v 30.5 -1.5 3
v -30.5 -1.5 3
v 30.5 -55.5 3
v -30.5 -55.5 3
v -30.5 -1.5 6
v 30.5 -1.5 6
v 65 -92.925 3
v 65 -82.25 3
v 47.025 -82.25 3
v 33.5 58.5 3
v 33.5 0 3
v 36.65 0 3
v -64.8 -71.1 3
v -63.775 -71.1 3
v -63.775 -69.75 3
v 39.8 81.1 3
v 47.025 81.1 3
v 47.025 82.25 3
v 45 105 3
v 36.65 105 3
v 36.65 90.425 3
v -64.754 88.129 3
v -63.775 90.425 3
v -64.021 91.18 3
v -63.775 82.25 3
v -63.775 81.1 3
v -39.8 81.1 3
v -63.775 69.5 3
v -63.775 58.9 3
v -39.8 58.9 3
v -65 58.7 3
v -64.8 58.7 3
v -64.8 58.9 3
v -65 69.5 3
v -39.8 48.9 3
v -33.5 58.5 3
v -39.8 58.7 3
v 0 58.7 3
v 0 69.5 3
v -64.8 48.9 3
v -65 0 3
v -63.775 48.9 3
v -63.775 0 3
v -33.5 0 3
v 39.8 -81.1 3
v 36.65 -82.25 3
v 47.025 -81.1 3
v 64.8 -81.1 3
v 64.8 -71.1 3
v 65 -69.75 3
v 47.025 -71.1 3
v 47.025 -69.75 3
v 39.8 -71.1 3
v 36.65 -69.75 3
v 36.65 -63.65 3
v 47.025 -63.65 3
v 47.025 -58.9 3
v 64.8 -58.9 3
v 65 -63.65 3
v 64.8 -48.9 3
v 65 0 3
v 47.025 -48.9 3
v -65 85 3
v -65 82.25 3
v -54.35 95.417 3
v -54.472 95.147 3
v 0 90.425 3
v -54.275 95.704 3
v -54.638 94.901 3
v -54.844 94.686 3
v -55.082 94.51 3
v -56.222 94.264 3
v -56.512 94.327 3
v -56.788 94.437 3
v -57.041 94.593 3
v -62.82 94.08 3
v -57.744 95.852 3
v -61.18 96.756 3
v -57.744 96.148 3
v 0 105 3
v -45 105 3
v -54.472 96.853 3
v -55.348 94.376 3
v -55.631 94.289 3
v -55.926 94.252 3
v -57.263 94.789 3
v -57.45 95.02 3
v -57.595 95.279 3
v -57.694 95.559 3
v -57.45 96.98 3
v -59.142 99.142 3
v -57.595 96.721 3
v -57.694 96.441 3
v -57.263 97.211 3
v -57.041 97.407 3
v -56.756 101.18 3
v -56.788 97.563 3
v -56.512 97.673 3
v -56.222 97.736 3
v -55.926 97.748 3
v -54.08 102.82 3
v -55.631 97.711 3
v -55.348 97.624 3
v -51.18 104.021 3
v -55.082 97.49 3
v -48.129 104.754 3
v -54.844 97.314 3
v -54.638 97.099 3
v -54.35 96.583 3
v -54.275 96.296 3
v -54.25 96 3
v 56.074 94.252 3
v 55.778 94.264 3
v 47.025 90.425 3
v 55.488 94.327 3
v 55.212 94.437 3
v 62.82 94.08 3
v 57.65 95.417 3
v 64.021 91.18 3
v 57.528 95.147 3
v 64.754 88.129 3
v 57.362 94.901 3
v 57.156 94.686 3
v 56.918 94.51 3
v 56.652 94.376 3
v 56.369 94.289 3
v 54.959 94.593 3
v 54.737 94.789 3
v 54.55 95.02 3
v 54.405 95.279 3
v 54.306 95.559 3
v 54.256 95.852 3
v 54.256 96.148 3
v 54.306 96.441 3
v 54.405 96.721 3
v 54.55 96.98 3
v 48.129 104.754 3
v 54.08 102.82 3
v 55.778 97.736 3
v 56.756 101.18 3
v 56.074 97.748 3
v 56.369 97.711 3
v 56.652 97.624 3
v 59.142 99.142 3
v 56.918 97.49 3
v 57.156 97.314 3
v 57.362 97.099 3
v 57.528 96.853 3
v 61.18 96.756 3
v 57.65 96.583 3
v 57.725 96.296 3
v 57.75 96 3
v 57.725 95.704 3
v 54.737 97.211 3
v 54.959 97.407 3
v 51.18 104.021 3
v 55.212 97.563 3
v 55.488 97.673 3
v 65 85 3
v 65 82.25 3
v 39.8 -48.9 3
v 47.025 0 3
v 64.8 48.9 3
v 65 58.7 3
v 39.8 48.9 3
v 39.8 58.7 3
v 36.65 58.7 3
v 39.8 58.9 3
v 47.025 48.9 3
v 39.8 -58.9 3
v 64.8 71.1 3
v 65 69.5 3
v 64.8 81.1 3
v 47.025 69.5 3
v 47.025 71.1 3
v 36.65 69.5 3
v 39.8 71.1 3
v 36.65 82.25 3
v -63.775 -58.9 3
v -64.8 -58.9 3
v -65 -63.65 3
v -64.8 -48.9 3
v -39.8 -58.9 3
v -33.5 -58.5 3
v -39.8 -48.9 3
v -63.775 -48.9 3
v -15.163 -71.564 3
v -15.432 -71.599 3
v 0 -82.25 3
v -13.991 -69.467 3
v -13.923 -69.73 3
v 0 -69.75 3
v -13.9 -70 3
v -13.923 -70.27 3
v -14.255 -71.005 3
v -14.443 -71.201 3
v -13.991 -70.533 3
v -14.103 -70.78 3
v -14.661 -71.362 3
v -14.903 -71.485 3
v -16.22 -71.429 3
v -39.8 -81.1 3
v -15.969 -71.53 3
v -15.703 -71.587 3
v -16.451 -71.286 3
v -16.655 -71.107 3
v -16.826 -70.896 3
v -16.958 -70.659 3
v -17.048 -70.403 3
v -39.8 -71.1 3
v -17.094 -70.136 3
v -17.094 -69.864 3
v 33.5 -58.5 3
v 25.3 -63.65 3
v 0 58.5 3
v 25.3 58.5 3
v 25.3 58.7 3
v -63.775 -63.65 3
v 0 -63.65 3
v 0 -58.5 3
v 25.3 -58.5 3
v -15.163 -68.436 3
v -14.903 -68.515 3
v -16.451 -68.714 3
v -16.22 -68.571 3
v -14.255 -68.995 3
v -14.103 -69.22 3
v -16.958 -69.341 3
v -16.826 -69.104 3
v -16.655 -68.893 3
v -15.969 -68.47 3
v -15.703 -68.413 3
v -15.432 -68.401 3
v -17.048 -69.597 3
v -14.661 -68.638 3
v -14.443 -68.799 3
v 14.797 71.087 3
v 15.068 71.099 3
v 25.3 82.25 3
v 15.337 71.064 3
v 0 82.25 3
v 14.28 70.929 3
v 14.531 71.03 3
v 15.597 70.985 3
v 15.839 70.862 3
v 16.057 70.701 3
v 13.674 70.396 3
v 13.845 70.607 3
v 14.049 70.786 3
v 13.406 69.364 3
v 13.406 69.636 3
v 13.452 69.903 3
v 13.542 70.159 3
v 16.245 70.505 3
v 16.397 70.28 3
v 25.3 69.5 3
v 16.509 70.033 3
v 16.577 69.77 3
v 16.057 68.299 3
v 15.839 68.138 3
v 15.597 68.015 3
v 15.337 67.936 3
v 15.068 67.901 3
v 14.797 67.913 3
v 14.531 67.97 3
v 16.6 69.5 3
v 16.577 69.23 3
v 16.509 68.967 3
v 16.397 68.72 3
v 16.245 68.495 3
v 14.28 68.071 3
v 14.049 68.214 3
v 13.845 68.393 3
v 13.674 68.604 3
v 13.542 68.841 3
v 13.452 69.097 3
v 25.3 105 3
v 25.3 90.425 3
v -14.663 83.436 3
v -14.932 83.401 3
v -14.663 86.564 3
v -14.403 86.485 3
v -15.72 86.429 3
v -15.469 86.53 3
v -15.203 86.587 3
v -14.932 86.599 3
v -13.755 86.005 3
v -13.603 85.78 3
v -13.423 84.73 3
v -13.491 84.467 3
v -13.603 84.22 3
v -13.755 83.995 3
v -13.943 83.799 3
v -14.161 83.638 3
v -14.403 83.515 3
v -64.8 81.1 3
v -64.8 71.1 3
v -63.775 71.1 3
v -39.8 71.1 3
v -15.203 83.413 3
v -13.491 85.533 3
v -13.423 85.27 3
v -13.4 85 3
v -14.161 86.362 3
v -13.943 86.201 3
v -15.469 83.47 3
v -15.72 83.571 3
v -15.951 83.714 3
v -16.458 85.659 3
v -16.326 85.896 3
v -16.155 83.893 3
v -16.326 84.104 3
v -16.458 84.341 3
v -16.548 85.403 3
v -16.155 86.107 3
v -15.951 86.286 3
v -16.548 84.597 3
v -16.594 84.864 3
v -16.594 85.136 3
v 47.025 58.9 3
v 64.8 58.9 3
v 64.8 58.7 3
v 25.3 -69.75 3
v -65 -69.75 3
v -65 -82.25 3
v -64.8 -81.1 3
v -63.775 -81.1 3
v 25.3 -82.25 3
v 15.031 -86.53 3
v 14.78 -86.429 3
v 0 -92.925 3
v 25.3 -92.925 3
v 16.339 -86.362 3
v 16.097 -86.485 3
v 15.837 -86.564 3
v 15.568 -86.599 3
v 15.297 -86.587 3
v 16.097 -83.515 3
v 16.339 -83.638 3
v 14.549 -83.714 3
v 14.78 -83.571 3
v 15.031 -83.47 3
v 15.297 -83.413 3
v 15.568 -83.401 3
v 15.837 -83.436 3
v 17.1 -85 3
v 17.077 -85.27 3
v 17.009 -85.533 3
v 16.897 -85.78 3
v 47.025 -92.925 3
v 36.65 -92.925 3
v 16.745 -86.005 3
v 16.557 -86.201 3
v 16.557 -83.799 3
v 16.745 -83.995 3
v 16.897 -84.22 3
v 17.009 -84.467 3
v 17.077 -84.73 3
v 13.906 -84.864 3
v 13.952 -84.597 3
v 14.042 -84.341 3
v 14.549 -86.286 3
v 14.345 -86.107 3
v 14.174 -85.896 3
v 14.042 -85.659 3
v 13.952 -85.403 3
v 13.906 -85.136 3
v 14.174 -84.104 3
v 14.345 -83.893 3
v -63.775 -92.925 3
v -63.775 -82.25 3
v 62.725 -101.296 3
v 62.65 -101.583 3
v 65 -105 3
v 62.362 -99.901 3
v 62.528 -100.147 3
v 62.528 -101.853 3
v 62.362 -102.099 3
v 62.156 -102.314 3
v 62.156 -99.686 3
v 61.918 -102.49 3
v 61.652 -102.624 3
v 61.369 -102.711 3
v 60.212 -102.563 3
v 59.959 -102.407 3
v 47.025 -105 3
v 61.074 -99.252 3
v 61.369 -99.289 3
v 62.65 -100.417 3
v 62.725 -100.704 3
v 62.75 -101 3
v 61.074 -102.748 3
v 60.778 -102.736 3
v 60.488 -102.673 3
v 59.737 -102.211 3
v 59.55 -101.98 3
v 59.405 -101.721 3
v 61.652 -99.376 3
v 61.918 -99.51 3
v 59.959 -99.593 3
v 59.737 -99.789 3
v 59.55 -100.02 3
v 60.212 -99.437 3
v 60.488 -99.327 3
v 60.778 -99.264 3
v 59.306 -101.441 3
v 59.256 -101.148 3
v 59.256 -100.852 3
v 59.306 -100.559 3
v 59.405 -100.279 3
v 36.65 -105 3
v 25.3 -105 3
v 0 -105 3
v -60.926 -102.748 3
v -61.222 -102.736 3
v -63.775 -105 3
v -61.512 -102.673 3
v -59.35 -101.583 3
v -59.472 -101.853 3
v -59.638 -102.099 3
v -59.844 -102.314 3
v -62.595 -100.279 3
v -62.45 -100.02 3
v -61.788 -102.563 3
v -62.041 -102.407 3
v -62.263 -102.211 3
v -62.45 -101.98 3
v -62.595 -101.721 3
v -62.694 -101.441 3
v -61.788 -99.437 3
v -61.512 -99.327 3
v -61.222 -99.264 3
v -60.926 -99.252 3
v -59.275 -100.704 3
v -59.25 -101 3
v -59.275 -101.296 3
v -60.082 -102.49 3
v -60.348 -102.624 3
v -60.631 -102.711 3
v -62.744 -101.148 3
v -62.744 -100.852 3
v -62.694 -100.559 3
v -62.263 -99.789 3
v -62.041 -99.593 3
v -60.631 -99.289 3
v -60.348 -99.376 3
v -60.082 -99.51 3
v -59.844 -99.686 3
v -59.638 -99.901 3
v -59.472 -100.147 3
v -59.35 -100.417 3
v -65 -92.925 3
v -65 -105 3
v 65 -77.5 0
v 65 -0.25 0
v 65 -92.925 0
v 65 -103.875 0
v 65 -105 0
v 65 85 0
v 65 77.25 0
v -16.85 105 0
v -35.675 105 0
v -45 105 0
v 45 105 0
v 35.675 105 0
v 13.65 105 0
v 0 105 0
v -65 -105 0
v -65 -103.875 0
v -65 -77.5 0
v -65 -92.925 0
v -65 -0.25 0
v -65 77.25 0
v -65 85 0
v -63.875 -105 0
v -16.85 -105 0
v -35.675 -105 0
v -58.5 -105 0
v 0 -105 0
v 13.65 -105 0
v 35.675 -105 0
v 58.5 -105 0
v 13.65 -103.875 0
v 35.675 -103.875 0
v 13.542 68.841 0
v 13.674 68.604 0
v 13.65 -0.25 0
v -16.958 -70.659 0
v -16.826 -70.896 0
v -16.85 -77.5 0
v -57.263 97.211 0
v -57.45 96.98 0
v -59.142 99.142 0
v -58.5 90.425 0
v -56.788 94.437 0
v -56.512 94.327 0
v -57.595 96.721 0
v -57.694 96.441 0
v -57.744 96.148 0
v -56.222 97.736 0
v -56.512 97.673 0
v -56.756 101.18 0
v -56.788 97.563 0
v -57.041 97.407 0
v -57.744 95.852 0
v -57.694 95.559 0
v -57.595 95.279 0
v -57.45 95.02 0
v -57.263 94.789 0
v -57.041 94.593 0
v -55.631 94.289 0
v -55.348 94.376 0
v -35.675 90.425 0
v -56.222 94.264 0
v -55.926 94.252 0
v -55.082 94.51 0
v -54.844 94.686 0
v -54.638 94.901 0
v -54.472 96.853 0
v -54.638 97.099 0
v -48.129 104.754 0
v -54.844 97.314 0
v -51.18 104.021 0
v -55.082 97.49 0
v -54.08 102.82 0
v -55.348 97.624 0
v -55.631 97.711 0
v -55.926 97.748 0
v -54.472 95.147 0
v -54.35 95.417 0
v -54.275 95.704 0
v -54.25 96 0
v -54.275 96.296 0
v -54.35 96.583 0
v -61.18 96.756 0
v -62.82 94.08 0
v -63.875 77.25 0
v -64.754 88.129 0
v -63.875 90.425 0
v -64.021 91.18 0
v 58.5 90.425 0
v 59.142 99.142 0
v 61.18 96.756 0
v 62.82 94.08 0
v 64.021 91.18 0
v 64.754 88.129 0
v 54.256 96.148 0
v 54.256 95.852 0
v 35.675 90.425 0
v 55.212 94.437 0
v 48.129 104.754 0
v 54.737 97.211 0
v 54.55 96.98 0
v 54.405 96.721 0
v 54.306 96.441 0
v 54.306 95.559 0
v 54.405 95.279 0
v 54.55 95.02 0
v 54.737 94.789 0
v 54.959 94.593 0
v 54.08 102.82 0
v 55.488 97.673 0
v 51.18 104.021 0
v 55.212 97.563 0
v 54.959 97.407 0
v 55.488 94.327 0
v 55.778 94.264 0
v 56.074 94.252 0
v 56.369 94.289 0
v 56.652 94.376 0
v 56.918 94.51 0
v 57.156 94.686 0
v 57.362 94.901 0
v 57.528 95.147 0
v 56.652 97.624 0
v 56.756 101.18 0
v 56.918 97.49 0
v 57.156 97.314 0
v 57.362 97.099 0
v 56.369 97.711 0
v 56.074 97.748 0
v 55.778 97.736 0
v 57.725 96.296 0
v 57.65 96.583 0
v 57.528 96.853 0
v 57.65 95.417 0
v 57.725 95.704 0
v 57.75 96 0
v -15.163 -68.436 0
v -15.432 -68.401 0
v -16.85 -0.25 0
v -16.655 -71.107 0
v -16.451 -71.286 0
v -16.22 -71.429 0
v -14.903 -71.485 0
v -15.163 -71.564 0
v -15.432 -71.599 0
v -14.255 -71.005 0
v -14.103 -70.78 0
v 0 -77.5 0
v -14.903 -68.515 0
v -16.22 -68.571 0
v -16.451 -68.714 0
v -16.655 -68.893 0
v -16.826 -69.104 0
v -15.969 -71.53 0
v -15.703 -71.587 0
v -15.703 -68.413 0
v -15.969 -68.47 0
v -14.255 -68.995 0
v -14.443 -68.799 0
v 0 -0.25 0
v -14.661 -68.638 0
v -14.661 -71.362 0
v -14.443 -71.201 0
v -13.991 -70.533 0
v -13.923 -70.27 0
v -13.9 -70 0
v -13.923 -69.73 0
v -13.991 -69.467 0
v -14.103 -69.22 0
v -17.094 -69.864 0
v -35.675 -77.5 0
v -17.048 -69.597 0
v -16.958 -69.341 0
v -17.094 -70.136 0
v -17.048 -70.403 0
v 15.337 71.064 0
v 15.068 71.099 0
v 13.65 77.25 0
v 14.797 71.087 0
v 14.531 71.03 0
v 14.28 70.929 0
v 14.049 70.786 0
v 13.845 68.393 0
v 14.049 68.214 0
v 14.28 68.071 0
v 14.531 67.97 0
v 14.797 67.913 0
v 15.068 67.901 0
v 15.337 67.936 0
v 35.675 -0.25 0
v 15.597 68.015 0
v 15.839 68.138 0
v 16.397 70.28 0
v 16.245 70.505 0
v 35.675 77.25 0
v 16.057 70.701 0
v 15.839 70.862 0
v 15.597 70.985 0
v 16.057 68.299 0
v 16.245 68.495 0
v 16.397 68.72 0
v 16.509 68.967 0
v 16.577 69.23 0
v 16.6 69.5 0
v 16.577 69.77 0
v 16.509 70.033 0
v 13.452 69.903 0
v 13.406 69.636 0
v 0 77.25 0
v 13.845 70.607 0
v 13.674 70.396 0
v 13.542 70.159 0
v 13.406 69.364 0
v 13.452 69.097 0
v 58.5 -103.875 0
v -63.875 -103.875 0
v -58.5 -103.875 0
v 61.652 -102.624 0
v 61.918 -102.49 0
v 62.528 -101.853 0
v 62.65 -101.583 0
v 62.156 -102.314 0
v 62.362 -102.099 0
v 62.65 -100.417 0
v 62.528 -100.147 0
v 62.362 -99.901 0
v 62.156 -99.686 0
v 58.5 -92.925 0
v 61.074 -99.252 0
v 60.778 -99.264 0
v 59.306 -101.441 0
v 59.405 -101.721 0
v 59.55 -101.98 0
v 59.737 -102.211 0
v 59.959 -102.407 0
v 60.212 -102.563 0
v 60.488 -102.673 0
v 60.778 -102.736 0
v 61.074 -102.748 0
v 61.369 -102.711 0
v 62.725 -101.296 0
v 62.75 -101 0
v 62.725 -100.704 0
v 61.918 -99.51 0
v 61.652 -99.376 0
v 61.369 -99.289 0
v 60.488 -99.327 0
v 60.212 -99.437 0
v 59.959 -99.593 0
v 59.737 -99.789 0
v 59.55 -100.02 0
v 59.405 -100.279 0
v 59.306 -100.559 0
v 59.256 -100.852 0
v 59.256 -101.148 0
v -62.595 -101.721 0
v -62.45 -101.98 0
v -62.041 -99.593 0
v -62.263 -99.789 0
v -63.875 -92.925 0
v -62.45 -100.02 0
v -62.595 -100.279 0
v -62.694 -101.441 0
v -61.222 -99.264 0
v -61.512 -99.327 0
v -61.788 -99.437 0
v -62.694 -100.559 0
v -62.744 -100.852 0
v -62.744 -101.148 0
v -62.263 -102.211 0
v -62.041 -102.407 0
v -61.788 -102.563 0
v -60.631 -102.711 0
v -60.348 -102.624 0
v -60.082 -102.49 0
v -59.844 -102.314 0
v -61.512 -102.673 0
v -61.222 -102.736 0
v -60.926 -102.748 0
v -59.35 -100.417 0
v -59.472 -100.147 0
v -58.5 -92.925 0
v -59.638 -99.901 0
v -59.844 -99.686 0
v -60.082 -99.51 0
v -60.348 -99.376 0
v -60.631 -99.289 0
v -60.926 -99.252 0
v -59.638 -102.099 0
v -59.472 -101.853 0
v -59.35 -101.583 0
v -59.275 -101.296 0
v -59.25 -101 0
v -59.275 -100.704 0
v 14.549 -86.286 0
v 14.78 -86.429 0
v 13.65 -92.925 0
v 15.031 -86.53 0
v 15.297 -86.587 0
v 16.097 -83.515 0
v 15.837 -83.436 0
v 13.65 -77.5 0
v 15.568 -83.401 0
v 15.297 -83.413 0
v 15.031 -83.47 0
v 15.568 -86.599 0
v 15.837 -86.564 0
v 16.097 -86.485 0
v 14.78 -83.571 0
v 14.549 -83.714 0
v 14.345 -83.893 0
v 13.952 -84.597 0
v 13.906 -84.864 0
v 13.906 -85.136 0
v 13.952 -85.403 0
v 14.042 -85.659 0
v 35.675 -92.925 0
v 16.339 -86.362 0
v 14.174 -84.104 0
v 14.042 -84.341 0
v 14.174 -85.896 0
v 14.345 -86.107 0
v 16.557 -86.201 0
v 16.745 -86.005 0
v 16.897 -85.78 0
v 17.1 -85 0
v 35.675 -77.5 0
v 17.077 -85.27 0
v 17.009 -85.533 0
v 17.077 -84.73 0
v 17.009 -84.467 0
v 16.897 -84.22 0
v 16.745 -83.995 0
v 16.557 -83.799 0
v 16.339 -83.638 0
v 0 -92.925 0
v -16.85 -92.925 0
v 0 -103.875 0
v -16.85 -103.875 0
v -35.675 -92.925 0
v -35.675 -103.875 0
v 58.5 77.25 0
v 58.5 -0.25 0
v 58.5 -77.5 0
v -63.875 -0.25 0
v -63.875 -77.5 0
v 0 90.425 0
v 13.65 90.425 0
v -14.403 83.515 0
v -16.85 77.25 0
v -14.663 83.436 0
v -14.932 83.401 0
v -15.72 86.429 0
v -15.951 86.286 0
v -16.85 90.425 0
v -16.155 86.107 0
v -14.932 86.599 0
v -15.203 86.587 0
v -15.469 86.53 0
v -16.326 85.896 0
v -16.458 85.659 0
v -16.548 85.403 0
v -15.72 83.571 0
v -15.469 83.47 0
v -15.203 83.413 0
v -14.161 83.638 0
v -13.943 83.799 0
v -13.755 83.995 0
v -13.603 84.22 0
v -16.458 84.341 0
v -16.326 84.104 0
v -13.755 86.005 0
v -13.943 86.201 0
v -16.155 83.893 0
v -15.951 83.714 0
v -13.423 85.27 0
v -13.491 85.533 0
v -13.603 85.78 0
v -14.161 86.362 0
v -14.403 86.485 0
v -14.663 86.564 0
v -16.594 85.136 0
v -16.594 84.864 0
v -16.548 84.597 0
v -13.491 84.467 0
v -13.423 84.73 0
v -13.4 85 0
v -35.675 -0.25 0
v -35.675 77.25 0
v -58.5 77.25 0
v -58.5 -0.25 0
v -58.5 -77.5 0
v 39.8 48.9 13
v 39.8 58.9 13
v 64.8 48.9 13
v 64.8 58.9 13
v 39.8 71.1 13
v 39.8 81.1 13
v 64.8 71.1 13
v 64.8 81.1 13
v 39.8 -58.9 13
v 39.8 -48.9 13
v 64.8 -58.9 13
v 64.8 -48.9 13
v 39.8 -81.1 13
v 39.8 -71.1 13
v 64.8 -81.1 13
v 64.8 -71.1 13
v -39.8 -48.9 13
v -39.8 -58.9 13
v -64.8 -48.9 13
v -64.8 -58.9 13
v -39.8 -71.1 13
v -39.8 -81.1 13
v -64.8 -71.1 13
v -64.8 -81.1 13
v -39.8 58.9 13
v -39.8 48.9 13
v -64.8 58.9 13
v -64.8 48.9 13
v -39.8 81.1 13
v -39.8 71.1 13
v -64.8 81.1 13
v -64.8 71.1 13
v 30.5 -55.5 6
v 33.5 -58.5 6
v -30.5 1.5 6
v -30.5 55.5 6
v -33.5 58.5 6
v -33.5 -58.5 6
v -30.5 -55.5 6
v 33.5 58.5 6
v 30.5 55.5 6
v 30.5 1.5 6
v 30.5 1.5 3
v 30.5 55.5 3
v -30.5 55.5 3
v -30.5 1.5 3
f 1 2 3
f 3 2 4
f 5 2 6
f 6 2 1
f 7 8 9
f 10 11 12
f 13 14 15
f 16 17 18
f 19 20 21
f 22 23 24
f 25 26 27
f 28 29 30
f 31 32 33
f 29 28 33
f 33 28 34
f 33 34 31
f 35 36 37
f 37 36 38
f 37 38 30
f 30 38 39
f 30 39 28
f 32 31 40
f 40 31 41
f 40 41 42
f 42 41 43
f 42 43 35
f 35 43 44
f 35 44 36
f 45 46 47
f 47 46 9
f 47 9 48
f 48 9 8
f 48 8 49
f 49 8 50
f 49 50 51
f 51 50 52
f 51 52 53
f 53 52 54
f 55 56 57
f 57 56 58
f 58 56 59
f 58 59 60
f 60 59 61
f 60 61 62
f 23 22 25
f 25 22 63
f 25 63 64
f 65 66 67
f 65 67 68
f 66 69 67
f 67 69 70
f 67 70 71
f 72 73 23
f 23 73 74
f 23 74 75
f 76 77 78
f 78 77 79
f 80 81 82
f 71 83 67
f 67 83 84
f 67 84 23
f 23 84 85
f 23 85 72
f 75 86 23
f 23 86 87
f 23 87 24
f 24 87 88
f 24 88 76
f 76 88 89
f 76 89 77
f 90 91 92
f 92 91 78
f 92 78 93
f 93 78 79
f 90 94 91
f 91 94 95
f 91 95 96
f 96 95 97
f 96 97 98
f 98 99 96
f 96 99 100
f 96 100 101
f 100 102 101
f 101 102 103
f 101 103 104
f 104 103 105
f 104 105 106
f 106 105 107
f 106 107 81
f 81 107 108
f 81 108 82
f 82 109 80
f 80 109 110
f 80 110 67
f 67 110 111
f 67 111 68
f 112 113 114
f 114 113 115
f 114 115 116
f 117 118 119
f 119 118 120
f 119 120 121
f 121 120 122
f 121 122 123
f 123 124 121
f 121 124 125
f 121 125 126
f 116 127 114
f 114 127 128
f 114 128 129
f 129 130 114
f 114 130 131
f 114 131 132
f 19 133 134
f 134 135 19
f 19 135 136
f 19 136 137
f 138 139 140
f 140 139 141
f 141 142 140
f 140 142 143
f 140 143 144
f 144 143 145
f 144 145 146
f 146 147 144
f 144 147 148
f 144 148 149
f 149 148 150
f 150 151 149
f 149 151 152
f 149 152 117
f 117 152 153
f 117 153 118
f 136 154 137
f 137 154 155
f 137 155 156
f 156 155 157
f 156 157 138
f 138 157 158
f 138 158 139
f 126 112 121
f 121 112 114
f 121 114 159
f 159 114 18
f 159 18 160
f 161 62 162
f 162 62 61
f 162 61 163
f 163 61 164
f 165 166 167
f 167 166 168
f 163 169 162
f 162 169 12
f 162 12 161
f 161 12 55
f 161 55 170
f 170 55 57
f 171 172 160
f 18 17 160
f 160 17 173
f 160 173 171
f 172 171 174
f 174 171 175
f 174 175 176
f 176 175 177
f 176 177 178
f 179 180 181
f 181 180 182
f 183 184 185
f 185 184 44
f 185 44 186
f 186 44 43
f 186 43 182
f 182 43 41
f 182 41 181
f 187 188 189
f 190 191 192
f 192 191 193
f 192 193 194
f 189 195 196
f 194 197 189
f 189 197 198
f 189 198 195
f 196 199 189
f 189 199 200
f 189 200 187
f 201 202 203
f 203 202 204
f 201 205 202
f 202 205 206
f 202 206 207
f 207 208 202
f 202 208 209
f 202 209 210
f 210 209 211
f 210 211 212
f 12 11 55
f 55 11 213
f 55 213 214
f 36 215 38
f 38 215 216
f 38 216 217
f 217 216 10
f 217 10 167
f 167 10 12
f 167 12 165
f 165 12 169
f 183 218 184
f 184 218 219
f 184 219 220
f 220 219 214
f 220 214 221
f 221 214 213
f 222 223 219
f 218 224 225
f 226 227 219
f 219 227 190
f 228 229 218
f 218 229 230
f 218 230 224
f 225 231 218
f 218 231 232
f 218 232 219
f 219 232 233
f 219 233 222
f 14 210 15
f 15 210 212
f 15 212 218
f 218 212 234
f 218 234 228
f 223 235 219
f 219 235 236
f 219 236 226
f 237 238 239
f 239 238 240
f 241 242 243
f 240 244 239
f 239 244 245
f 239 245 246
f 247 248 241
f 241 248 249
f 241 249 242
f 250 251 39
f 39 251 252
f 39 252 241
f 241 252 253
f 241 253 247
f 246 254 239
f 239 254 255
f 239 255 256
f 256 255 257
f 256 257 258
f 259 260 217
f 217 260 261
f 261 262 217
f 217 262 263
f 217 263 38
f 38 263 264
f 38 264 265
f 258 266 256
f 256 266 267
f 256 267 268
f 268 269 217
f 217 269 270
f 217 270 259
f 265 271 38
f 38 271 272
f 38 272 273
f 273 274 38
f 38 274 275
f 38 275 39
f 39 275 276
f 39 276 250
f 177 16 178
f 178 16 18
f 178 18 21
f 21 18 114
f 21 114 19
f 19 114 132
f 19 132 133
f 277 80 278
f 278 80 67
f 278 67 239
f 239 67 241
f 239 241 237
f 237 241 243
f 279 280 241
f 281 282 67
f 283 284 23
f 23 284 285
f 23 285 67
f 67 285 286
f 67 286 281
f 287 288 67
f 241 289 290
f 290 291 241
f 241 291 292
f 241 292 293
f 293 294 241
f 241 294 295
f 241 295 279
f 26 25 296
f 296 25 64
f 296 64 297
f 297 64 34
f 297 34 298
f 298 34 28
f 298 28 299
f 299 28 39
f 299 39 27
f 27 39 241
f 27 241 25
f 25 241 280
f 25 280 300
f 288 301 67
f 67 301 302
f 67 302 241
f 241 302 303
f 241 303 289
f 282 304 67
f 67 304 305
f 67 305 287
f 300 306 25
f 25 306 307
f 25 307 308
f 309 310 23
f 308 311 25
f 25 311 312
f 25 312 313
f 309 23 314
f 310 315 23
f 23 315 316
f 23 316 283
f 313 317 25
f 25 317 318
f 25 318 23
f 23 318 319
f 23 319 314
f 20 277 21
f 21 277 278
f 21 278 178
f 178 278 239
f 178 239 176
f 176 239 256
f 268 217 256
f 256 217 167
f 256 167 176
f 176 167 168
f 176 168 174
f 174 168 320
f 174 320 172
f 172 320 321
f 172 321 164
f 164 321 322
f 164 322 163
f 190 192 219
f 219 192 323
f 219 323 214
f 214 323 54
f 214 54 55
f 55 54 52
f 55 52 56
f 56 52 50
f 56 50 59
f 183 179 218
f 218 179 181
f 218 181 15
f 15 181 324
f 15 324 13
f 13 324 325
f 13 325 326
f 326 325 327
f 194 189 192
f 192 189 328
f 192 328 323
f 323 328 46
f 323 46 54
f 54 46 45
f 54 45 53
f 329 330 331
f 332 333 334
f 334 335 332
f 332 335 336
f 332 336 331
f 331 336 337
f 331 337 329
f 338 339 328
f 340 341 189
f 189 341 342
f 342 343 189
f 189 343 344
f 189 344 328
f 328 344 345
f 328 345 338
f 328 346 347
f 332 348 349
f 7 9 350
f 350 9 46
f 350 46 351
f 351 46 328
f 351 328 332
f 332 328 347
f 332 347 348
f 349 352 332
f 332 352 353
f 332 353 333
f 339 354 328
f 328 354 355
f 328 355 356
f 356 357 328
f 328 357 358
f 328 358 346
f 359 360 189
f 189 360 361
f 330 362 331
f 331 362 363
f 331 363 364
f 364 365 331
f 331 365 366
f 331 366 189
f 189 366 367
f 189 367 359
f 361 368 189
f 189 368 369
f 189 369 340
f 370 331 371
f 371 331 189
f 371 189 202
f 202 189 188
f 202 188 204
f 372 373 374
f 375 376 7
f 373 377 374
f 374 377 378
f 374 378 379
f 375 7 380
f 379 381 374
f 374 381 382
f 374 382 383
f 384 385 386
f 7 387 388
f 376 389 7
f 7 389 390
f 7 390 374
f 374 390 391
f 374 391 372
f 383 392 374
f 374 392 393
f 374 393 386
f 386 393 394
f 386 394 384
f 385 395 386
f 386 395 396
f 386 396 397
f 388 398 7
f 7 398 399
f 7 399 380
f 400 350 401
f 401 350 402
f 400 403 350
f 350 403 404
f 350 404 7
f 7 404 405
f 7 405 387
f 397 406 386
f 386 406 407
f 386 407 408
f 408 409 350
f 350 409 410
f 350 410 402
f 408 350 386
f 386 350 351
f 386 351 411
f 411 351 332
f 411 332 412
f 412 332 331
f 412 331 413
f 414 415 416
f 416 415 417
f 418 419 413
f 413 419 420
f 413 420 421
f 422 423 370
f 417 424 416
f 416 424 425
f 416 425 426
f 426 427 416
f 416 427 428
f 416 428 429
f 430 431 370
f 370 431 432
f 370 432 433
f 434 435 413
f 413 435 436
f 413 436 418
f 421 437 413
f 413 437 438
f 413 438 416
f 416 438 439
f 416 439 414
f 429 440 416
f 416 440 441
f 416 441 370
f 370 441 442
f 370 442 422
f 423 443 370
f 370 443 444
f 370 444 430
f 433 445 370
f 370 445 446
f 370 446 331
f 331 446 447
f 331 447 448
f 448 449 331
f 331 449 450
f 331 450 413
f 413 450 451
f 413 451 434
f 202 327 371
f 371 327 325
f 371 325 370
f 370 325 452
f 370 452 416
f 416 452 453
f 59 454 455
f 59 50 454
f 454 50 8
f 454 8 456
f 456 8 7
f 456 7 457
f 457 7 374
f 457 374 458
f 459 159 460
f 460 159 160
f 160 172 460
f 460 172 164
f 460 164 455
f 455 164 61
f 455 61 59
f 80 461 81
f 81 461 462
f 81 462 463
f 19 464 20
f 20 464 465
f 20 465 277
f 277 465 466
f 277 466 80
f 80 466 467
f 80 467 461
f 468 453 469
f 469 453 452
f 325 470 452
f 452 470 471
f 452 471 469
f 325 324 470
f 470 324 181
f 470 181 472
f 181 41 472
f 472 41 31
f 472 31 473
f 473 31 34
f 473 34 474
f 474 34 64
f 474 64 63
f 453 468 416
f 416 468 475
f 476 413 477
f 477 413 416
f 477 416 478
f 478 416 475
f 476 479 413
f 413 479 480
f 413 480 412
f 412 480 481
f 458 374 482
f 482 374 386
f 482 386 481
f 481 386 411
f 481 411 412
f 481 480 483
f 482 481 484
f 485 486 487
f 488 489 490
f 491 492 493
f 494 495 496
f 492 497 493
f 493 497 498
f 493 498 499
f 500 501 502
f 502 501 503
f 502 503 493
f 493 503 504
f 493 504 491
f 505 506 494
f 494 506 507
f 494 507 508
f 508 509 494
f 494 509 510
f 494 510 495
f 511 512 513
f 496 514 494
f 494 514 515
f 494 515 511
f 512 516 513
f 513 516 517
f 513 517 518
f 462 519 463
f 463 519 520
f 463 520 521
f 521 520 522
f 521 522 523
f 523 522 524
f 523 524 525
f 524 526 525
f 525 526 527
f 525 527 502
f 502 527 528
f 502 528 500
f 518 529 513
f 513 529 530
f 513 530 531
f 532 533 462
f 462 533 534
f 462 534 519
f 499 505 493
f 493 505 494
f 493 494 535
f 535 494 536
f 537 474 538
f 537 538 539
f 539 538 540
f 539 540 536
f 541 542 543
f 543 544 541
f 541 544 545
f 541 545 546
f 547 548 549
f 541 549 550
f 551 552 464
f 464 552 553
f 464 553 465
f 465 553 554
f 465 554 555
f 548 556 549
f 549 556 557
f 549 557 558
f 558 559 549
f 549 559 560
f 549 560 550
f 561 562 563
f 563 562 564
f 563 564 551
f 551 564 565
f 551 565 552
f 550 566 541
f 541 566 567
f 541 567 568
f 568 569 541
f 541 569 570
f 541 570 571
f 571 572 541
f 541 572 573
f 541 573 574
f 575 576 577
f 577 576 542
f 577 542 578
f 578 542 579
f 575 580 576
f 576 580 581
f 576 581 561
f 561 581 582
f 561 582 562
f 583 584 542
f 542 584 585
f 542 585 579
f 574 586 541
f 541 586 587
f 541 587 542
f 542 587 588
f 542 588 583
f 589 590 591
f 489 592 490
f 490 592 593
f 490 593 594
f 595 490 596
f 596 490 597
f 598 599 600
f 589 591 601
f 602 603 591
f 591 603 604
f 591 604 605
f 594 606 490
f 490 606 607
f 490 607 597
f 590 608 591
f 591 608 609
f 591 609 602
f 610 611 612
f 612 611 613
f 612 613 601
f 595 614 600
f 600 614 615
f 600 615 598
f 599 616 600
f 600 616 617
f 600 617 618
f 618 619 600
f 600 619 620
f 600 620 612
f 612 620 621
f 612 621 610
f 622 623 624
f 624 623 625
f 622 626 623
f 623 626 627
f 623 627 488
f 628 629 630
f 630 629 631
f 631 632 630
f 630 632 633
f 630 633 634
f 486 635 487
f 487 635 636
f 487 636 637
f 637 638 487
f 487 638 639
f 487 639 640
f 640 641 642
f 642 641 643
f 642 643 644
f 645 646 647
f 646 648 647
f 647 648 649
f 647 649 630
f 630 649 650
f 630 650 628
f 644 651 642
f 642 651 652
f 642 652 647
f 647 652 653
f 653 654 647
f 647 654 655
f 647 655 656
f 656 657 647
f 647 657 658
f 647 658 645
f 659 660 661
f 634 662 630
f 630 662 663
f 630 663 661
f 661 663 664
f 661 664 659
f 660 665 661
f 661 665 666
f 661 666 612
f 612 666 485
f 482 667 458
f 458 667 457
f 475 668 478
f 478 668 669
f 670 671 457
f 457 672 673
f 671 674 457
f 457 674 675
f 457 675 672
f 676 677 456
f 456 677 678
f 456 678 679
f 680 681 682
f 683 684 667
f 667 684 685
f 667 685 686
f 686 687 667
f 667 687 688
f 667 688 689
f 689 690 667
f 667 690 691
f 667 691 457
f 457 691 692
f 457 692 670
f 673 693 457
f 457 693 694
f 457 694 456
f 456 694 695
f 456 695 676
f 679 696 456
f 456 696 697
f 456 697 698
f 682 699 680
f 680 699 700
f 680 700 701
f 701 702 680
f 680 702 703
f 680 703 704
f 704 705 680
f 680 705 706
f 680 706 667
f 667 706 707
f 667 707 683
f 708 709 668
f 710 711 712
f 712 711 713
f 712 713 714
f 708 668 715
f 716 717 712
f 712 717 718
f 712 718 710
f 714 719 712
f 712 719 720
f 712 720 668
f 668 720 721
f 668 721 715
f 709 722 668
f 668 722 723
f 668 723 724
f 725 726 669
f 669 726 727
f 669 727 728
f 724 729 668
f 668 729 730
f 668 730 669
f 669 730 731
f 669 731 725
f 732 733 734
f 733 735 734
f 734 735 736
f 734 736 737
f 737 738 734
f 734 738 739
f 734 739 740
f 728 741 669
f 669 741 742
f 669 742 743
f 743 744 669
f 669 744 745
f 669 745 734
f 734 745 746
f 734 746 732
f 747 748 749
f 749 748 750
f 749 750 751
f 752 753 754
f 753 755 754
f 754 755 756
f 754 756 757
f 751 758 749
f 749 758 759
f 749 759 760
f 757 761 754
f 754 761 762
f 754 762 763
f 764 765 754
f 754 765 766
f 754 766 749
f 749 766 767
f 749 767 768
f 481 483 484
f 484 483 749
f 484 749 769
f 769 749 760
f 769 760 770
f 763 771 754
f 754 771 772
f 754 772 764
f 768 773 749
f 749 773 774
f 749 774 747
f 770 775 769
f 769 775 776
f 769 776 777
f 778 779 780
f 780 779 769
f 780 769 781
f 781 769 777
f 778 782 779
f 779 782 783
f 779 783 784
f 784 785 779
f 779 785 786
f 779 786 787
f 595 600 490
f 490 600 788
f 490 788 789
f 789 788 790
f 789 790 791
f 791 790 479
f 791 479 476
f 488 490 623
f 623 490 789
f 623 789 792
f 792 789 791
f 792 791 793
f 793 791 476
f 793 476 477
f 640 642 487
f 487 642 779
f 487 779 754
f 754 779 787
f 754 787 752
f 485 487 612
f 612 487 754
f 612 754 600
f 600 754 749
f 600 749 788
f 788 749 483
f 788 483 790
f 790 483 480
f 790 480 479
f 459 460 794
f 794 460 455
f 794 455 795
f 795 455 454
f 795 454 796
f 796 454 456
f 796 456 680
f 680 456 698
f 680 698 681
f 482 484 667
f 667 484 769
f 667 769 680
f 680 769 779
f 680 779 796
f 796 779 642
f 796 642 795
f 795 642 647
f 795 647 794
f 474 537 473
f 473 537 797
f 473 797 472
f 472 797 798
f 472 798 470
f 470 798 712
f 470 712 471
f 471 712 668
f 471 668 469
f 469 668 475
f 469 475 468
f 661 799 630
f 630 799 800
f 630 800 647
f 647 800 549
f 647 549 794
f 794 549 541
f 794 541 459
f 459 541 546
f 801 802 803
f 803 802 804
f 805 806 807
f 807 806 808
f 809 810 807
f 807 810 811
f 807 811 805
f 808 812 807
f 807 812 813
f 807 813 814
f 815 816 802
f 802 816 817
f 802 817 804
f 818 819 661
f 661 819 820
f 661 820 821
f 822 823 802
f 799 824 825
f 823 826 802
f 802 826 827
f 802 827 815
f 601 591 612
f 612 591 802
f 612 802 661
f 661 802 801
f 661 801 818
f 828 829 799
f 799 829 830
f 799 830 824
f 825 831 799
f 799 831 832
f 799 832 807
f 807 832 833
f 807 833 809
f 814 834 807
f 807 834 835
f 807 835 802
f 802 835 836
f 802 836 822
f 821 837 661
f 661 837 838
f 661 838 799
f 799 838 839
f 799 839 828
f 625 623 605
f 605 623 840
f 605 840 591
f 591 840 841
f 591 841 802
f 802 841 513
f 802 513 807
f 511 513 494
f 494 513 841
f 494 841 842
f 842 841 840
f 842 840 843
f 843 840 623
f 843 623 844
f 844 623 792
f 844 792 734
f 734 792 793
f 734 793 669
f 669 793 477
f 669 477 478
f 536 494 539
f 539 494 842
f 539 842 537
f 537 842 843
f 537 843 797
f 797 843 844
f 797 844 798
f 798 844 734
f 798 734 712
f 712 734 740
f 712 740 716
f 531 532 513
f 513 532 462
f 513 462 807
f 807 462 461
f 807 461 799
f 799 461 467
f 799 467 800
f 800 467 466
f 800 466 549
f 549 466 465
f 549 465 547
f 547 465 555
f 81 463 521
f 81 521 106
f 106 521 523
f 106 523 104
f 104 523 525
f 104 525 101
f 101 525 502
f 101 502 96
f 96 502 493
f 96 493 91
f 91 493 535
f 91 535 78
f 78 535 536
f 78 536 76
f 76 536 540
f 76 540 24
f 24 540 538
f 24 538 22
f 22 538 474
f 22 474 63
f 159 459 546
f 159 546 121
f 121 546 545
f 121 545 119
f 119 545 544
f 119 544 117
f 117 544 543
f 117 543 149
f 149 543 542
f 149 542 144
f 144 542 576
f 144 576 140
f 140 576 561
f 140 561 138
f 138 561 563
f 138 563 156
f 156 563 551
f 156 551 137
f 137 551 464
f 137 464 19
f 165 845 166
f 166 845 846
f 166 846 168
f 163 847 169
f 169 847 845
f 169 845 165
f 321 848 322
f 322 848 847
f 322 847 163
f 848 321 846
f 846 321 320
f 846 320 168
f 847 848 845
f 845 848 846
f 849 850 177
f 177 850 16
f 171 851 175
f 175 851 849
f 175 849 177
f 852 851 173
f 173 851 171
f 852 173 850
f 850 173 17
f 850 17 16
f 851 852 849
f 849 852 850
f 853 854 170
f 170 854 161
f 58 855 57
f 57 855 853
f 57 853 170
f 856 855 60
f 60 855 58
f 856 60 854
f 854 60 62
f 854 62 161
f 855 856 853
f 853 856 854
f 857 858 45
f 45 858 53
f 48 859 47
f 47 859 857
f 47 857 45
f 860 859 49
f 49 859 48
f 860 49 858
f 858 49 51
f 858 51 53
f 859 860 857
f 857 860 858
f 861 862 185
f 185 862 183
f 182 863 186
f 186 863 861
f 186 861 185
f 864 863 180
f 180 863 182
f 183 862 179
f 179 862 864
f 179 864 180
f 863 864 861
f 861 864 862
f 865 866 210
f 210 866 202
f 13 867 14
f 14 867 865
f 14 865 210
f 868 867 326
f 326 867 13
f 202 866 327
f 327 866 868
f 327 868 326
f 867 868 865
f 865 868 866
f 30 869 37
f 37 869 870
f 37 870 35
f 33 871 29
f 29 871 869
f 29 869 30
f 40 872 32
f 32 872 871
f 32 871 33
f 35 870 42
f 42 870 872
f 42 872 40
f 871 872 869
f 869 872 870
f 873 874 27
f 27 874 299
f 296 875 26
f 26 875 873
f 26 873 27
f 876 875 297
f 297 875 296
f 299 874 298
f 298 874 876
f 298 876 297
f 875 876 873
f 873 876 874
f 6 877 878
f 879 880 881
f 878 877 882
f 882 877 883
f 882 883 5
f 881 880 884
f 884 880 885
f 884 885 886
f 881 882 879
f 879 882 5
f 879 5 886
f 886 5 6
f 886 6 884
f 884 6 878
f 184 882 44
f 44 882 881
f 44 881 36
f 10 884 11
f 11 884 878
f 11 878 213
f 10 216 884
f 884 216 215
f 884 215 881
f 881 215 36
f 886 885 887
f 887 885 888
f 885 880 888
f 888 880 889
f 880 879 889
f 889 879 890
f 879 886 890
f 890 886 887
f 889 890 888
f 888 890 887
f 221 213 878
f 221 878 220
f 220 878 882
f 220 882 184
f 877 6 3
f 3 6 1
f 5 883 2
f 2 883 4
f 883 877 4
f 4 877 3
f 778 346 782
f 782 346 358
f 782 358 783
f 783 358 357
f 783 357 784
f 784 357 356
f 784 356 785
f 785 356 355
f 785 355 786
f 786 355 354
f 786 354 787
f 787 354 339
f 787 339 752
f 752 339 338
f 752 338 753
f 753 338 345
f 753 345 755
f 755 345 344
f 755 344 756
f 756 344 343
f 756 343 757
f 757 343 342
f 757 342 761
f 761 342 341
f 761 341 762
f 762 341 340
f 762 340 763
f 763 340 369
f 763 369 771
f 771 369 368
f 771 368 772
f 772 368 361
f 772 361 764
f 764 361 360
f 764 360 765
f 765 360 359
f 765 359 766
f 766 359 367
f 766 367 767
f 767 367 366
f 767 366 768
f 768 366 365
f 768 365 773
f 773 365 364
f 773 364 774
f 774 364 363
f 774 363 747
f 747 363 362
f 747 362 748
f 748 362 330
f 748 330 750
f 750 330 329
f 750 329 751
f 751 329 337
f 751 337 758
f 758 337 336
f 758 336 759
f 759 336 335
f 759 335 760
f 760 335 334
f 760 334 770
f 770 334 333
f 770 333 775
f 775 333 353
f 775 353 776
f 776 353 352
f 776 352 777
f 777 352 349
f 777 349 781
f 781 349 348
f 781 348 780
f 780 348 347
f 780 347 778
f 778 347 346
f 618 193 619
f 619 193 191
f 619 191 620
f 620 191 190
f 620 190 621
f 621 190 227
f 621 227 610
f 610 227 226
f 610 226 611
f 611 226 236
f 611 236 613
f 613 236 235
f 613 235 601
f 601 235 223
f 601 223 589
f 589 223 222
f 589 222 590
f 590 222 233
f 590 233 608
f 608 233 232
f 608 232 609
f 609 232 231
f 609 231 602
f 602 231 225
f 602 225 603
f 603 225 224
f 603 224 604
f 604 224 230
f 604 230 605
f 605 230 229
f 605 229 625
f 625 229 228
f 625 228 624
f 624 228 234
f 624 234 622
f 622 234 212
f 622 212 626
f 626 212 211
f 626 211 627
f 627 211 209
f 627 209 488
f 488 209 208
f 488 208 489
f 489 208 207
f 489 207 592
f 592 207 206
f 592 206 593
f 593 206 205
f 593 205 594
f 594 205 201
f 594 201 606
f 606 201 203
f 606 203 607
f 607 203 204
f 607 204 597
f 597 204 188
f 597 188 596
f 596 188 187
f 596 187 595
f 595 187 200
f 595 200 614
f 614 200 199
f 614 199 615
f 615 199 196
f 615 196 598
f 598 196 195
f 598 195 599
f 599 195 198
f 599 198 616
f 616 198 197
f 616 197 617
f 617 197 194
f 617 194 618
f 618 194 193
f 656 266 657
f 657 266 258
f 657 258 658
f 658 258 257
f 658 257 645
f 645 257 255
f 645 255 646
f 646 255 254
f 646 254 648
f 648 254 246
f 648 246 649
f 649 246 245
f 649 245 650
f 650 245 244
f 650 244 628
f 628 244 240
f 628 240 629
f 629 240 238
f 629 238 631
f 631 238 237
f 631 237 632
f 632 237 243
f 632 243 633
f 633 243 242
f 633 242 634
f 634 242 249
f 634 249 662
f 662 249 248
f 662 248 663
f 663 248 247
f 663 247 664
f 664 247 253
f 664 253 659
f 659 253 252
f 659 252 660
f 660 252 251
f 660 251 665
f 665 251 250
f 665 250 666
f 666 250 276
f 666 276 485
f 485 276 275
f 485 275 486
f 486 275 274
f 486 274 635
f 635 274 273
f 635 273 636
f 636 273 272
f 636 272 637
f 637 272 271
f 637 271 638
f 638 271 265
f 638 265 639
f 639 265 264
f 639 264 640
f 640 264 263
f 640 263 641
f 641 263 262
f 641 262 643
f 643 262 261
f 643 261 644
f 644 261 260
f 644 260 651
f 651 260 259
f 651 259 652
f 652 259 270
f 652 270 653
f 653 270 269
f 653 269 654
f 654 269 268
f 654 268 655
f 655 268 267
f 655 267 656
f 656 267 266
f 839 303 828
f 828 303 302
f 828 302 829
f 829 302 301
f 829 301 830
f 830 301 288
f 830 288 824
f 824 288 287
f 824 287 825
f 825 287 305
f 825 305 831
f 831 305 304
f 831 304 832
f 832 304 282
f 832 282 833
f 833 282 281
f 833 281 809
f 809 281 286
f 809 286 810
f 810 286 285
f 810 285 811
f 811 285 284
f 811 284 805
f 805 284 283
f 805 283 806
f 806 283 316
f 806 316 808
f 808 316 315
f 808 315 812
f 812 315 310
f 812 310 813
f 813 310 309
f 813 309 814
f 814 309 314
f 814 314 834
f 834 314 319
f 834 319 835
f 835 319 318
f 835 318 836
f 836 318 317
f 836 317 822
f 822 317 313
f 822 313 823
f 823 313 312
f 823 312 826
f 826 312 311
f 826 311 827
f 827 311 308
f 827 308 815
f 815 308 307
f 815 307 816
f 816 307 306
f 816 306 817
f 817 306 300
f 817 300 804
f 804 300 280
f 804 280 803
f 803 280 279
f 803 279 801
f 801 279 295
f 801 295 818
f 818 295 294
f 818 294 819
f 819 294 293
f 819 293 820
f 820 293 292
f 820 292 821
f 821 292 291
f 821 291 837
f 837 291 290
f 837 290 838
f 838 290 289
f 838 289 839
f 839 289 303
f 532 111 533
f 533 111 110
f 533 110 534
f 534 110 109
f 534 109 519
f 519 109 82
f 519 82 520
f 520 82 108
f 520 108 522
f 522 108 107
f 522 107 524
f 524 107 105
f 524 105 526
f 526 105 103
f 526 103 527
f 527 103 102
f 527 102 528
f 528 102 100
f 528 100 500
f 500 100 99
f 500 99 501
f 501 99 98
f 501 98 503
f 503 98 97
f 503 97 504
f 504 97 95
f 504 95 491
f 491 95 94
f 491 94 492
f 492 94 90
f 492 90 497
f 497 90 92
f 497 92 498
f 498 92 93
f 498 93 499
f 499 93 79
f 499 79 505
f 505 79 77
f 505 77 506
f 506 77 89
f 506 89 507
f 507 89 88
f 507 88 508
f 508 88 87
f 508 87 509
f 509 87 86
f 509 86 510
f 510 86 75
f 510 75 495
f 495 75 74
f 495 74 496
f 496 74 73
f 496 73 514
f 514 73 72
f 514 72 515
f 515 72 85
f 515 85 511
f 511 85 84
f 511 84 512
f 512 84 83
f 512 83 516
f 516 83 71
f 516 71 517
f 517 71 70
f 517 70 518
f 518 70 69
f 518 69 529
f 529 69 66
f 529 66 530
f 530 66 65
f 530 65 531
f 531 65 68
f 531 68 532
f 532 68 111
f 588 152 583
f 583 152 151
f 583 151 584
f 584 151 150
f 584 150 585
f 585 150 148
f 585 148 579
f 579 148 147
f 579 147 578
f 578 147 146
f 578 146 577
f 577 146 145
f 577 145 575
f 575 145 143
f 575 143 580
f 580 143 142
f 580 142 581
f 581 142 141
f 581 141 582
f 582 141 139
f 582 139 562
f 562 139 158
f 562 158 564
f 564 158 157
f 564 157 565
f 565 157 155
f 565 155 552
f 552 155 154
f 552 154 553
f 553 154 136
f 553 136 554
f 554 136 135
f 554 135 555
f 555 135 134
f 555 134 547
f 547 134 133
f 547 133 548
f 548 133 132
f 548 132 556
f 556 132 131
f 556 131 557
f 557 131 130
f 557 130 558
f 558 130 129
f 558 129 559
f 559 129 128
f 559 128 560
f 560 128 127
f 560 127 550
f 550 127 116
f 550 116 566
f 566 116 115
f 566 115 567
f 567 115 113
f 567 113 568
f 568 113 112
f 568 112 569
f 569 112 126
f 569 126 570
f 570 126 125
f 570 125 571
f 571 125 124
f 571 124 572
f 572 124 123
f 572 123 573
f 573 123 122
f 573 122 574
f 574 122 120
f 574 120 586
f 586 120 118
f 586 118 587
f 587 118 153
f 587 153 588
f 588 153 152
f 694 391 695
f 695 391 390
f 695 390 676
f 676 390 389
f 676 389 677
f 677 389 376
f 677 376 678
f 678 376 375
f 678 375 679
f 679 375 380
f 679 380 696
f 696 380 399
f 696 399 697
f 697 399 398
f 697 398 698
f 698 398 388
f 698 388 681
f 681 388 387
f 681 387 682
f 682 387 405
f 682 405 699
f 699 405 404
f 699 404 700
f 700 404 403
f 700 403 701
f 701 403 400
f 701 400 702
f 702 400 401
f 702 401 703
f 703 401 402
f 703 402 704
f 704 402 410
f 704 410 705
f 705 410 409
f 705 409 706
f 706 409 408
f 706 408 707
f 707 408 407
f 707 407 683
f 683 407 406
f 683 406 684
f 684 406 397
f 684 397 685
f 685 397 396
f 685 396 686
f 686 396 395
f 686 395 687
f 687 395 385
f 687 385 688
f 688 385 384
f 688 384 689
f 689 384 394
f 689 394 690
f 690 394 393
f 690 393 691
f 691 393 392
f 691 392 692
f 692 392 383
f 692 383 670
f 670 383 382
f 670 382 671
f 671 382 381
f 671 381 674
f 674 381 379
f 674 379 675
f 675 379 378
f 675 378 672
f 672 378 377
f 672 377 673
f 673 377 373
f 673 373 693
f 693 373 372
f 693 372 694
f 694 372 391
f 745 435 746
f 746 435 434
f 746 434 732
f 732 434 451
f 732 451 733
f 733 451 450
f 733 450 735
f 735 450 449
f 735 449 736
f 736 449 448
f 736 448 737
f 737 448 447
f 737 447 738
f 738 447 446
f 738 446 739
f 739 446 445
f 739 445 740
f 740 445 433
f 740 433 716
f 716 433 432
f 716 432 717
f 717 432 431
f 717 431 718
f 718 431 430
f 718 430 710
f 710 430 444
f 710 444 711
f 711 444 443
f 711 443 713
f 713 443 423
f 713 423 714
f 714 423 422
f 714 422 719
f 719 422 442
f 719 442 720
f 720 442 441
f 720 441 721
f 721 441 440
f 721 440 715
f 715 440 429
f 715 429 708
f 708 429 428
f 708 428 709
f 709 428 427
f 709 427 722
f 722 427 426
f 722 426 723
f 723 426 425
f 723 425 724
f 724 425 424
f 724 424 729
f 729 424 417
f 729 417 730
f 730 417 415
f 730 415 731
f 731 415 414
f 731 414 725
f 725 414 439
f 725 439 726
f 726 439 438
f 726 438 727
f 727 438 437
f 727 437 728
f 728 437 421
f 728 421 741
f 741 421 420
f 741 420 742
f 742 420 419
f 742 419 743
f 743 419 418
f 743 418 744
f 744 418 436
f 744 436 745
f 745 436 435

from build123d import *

# Parameters (mm, degrees)
SKETCH1_W               = 130
SKETCH1_H               = 210
BOSS_EXTRUDE1_DEPTH     = 3
FILLET1_R               = 20
FILLET2_R               = 20
SKETCH2_W               = 25
SKETCH2_H               = 10
BOSS_EXTRUDE2_DEPTH     = 10
MIRROR2_COPY_1_SKETCH_W = 25
MIRROR2_COPY_1_SKETCH_H = 10
MIRROR2_COPY_1_DEPTH    = 10
SKETCH3_W               = 67
SKETCH3_H               = 60
SKETCH3_W_2             = 61
SKETCH3_H_2             = 54
BOSS_EXTRUDE3_DEPTH     = 3
CROQUIS1_R              = 1.6
CORTAR_EXTRUIR1_DEPTH   = 10
CROQUIS2_R              = 1.75
CORTAR_EXTRUIR2_DEPTH   = 10


with BuildPart() as part:
    # Sketch1 → Boss-Extrude1 (new body)
    with BuildSketch(Plane.XY):
        Rectangle(SKETCH1_W, SKETCH1_H)
    extrude(amount=BOSS_EXTRUDE1_DEPTH)

    # Fillet1
    fillet1_edges = [part.edges().sort_by_distance(p)[0] for p in [
        (-65, 105, 1.5),
    ]]
    fillet(fillet1_edges, radius=FILLET1_R)

    # Fillet2
    fillet2_edges = [part.edges().sort_by_distance(p)[0] for p in [
        (65, 105, 1.5),
    ]]
    fillet(fillet2_edges, radius=FILLET2_R)

    # Sketch2 → Boss-Extrude2 (add)
    with BuildSketch(Plane.XY.offset(3)):
        with Locations((52.3, 53.9)):
            Rectangle(SKETCH2_W, SKETCH2_H)
        with Locations((52.3, 76.1)):
            Rectangle(SKETCH2_W, SKETCH2_H)
    boss_extrude2 = extrude(amount=BOSS_EXTRUDE2_DEPTH)

    # Mirror1: Boss-Extrude2 across plane
    add(boss_extrude2.mirror(Plane.ZX))

    # Mirror2: Boss-Extrude2 across plane
    add(boss_extrude2.mirror(Plane(origin=(0, 0, 0), x_dir=(0, 0, 1), z_dir=(1, 0, 0))))

    # Mirror2 copy 1 sketch → Mirror2 copy 1 (add)
    with BuildSketch(Plane(origin=(0, 0, 3), x_dir=(-1, 0, 0), z_dir=(0, 0, 1))):
        with Locations((52.3, 53.9)):
            Rectangle(MIRROR2_COPY_1_SKETCH_W, MIRROR2_COPY_1_SKETCH_H)
        with Locations((52.3, 76.1)):
            Rectangle(MIRROR2_COPY_1_SKETCH_W, MIRROR2_COPY_1_SKETCH_H)
    extrude(amount=MIRROR2_COPY_1_DEPTH)

    # Sketch3 → Boss-Extrude3 (add)
    with BuildSketch(Plane.XY.offset(3)):
        with Locations((0, 28.5)):
            Rectangle(SKETCH3_W, SKETCH3_H)
        with Locations((0, 28.5)):
            Rectangle(SKETCH3_W_2, SKETCH3_H_2, mode=Mode.SUBTRACT)
    boss_extrude3 = extrude(amount=BOSS_EXTRUDE3_DEPTH)

    # Mirror3: Boss-Extrude3 across plane
    add(boss_extrude3.mirror(Plane.ZX))

    # Croquis1 → Cortar-Extruir1 (cut)
    with BuildSketch(Plane.XY.offset(3)):
        with Locations((-15, 85)):
            Circle(CROQUIS1_R)
        with Locations((15, 69.5)):
            Circle(CROQUIS1_R)
        with Locations((-15.5, -70)):
            Circle(CROQUIS1_R)
        with Locations((15.5, -85)):
            Circle(CROQUIS1_R)
    extrude(amount=-CORTAR_EXTRUIR1_DEPTH, mode=Mode.SUBTRACT)

    # Croquis2 → Cortar-Extruir2 (cut)
    with BuildSketch(Plane.XY.offset(3)):
        with Locations((-61, -101)):
            Circle(CROQUIS2_R)
        with Locations((61, -101)):
            Circle(CROQUIS2_R)
        with Locations((56, 96)):
            Circle(CROQUIS2_R)
        with Locations((-56, 96)):
            Circle(CROQUIS2_R)
    extrude(amount=-CORTAR_EXTRUIR2_DEPTH, mode=Mode.SUBTRACT)


solid = part.part
